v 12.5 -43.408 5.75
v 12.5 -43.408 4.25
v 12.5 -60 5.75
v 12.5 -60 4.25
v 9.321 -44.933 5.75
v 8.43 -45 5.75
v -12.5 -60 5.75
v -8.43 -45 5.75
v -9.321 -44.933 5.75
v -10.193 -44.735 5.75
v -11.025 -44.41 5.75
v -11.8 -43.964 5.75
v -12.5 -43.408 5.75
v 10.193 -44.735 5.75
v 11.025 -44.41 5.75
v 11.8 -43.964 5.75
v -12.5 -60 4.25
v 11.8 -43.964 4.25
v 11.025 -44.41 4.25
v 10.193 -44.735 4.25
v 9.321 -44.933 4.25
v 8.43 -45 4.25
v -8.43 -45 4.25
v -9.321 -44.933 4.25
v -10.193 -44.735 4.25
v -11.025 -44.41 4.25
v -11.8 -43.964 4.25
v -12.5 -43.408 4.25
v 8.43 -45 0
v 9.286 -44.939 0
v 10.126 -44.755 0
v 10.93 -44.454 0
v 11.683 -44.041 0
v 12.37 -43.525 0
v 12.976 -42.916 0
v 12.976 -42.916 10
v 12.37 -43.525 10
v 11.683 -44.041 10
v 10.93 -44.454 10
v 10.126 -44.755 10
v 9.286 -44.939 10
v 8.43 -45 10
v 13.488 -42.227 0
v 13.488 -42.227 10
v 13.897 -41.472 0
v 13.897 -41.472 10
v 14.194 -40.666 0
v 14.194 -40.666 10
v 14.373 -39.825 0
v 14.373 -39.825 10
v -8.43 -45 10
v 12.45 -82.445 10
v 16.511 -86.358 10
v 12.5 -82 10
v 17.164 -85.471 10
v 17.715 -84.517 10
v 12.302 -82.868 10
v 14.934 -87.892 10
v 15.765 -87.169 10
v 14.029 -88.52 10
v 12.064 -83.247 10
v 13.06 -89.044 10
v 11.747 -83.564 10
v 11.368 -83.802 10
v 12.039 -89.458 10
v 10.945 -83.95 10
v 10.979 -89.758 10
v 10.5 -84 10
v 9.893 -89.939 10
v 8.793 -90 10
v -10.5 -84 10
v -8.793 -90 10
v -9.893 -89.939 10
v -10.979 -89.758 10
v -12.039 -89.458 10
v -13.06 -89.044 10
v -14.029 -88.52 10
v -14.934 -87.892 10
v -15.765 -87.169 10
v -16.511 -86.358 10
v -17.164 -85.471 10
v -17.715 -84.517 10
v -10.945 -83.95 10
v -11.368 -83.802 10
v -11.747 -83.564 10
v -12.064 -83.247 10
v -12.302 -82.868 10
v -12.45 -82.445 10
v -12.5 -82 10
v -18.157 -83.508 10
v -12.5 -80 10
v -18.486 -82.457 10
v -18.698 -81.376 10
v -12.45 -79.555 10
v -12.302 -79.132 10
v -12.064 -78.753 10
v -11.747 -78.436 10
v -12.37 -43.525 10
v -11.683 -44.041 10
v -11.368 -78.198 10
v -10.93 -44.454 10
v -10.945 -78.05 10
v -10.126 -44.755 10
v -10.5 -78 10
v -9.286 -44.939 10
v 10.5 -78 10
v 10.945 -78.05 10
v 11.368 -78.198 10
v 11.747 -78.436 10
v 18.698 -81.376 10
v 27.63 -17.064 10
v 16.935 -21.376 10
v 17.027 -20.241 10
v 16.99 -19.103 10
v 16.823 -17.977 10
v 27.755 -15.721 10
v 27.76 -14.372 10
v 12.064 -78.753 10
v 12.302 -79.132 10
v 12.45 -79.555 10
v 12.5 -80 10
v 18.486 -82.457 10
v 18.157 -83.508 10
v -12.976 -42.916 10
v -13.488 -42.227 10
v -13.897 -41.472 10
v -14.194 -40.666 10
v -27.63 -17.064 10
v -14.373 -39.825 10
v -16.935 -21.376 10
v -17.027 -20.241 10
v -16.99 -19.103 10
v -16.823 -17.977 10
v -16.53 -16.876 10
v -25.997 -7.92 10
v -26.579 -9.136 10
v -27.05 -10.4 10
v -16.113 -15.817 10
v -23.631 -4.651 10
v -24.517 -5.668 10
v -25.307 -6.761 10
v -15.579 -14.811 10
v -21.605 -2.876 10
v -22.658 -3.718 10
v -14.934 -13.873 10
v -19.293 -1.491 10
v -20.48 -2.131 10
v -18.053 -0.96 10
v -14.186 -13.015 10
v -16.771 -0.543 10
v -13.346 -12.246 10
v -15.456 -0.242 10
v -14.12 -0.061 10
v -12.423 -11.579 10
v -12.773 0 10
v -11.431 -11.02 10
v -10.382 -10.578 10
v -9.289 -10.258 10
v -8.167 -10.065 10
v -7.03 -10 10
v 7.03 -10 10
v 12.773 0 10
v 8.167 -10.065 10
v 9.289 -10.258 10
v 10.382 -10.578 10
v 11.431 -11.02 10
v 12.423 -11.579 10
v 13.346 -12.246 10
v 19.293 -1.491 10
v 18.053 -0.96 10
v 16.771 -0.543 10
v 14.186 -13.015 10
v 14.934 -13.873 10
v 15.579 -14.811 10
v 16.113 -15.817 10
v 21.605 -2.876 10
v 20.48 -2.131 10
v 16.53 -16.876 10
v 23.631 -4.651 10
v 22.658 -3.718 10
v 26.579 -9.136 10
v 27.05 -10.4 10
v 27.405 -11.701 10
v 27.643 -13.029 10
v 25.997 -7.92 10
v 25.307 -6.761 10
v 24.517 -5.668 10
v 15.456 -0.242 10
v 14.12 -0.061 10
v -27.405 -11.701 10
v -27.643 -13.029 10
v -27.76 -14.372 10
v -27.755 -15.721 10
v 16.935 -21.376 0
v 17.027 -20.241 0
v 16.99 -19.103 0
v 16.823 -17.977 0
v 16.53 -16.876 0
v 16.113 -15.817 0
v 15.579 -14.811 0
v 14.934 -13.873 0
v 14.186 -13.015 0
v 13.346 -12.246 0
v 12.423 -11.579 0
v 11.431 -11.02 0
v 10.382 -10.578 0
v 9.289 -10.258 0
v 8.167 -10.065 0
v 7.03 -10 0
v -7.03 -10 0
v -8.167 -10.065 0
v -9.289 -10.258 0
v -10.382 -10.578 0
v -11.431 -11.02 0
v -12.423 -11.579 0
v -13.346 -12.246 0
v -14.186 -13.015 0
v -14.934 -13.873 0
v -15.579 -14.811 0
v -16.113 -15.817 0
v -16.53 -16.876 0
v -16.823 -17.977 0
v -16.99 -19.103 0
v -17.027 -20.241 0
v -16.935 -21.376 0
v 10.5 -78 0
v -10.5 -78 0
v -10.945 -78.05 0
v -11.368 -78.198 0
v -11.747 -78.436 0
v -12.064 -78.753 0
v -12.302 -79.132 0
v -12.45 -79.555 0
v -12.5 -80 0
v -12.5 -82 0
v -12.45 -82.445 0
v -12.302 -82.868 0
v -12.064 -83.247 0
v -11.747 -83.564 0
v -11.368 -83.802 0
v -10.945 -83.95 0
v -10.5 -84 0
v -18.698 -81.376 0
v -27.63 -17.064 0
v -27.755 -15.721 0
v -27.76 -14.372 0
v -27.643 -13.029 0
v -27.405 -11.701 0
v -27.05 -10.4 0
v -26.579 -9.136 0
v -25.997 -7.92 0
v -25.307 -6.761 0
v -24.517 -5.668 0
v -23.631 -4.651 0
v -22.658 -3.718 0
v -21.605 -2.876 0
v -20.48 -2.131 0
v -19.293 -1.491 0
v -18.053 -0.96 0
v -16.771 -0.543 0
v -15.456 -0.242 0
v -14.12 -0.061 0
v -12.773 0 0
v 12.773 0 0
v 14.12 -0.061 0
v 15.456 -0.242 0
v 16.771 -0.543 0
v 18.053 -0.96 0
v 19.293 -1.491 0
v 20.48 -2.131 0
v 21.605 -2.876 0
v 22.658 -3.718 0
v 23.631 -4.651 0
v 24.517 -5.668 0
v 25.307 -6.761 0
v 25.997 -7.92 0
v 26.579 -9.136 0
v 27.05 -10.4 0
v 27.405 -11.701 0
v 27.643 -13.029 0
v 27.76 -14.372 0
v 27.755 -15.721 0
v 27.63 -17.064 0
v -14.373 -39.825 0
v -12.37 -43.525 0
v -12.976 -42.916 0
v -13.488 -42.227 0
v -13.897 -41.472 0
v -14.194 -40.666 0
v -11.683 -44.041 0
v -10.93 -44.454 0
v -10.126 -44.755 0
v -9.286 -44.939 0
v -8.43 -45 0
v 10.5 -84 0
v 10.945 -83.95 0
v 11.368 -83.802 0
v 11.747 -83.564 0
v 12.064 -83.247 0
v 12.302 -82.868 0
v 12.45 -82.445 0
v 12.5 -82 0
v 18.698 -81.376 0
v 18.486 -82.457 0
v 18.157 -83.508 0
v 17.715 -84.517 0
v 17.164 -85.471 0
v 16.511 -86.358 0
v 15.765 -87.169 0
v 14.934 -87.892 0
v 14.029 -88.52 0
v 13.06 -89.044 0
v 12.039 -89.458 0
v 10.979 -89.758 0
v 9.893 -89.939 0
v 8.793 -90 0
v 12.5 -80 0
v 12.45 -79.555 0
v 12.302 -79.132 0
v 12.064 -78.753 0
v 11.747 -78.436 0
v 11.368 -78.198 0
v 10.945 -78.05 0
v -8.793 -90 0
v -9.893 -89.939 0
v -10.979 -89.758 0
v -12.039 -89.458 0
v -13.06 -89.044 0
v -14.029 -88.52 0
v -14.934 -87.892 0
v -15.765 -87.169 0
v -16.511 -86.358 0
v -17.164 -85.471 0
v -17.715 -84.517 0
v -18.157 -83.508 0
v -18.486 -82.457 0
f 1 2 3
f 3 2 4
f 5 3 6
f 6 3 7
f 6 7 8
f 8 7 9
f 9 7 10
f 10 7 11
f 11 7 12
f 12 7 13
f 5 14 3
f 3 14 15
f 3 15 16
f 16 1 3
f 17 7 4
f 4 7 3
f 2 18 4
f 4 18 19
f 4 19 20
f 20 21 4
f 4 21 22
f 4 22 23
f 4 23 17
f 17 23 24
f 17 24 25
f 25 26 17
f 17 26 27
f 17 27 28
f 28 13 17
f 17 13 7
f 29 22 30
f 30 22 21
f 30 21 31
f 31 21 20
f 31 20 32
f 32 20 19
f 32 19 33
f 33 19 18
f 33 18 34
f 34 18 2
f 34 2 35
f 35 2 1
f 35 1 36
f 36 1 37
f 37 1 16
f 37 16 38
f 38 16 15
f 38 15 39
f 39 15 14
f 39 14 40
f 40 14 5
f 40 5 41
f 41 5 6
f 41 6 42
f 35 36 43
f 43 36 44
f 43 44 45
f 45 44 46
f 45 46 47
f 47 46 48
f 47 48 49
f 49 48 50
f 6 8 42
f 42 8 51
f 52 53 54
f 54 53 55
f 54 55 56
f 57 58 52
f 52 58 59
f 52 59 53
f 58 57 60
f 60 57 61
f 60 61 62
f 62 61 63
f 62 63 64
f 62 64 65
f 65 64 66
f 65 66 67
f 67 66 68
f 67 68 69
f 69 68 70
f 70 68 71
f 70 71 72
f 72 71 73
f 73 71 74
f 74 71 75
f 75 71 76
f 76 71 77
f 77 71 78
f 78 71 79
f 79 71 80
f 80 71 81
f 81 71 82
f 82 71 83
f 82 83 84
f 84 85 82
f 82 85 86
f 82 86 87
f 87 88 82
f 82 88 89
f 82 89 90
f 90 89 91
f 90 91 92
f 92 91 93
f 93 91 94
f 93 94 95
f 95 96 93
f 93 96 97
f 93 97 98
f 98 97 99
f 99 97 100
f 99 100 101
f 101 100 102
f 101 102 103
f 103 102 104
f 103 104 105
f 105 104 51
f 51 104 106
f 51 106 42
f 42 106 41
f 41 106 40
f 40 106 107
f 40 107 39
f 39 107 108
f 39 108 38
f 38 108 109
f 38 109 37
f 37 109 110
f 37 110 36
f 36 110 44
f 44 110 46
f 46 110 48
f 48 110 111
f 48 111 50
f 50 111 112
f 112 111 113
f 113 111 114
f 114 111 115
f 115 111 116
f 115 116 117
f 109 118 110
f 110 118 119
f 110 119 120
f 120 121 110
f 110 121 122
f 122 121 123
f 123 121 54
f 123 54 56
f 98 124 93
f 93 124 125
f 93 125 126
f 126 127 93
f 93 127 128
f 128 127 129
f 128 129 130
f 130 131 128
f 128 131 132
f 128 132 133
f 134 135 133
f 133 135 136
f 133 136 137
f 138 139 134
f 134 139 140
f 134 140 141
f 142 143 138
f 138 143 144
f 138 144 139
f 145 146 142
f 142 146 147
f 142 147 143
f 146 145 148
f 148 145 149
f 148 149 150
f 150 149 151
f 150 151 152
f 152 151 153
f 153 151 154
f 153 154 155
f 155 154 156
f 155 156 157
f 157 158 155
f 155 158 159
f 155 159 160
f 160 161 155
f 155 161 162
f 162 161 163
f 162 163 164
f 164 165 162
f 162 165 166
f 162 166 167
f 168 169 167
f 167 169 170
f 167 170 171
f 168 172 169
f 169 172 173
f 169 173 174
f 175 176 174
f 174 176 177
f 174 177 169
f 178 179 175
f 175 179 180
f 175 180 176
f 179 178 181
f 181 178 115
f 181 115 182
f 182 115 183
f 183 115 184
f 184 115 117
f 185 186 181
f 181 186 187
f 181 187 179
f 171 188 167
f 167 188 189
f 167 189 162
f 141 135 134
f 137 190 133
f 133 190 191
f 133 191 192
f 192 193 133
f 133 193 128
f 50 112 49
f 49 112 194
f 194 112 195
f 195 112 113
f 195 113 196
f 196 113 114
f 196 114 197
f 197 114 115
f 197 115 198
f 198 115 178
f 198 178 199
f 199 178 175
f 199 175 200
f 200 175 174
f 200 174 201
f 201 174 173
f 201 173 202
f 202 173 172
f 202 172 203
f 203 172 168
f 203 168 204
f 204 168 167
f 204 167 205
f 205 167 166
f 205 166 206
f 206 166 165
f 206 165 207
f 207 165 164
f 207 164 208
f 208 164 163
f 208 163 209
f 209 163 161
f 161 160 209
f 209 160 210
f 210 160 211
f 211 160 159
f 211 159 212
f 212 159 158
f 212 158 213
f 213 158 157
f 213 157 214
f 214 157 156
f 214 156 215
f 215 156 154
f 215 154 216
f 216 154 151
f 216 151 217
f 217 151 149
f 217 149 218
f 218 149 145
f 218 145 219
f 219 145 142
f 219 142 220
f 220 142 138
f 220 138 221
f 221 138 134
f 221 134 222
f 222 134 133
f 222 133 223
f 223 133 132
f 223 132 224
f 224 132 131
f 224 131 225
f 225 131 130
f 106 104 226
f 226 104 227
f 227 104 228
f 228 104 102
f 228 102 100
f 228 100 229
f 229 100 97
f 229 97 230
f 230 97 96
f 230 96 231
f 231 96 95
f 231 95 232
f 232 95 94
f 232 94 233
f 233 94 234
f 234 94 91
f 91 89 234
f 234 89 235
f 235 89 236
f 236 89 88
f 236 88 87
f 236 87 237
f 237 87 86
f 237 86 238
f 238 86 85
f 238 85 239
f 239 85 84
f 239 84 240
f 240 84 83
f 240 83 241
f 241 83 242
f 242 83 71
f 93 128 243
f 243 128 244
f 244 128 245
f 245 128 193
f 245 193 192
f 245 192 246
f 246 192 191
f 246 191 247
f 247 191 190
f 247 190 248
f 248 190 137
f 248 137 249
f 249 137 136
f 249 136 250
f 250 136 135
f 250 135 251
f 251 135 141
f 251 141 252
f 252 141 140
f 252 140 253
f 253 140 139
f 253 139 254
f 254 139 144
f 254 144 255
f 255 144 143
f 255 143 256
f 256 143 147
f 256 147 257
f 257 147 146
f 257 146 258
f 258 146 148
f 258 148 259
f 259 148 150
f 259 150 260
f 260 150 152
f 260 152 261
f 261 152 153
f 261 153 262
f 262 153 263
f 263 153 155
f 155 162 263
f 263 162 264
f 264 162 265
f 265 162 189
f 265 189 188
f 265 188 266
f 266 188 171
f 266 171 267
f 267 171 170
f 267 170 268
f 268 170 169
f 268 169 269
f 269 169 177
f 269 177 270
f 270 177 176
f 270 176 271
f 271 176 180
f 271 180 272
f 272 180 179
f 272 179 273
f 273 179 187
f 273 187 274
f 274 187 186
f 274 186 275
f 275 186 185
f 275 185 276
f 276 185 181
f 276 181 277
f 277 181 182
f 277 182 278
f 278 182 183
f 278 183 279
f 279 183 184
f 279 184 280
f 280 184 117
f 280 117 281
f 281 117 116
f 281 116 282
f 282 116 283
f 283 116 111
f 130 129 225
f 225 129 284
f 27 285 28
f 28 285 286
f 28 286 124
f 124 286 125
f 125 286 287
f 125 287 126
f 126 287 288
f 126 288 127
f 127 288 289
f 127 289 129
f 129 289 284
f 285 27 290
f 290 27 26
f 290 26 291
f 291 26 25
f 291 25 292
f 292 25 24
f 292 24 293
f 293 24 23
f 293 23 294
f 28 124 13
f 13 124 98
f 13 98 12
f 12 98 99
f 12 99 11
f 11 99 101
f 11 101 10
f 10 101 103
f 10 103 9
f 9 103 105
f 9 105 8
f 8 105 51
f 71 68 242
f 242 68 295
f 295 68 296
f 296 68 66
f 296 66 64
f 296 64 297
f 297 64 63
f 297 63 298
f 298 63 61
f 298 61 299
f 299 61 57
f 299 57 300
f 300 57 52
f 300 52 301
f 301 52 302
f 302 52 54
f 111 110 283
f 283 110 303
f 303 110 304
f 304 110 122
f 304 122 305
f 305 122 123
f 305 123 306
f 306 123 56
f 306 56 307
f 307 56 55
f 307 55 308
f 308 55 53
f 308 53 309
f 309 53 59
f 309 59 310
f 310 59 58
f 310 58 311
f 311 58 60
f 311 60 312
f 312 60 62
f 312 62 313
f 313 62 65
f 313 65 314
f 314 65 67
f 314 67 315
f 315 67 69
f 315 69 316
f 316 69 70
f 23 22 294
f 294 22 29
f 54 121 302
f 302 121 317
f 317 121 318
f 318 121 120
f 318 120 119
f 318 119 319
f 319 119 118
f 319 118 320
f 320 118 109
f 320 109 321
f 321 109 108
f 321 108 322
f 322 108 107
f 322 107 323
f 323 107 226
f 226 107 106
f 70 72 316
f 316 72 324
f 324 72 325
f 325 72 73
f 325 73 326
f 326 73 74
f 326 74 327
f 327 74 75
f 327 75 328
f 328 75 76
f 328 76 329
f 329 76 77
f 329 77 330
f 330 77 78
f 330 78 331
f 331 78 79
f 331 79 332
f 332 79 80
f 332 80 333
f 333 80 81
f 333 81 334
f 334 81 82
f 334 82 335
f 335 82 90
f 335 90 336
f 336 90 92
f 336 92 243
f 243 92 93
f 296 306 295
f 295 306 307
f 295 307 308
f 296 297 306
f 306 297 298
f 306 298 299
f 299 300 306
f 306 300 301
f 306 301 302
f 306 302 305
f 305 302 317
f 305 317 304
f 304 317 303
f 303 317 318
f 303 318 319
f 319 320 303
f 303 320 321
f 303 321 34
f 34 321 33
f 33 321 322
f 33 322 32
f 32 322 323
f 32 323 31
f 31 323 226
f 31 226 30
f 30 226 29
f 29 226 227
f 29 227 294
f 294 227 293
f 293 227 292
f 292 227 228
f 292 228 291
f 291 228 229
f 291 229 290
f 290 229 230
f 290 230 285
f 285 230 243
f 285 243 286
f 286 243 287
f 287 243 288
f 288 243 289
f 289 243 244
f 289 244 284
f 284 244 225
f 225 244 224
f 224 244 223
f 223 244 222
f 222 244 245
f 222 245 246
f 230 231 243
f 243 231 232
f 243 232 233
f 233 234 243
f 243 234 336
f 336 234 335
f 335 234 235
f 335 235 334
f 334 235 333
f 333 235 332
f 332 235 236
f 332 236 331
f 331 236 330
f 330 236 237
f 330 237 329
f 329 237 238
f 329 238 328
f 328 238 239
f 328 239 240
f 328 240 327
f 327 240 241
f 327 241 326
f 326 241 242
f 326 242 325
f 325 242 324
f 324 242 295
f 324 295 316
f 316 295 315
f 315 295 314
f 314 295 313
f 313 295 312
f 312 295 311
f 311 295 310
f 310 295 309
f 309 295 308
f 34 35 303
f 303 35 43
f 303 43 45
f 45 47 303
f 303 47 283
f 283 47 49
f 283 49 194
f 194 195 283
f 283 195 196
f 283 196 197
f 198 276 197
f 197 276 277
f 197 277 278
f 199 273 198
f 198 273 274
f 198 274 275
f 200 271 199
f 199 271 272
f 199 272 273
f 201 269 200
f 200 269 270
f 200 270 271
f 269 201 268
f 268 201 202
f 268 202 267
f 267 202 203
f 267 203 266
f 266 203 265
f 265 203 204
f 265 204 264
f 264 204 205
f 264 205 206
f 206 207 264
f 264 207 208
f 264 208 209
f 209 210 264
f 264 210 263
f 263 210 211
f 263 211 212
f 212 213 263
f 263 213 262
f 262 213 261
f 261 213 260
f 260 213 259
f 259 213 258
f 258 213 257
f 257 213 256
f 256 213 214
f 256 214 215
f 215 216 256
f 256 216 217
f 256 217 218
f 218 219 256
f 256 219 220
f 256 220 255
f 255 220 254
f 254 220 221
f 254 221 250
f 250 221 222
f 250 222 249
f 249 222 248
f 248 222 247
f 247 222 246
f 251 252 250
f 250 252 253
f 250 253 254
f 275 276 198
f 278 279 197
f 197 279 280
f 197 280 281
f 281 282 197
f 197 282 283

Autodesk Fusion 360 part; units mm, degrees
sketch "Sketch1" plane through (0, 0, 0) normal (0, 0, 1) x (1, 0, 0)
  line L0 (18.6978, -81.3757) -> (27.6301, -17.0635)
  line L1 (12.7727, 0) -> (-12.7727, 0)
  line L2 (-27.6301, -17.0635) -> (-18.6978, -81.3757)
  line L3 (-8.7929, -90) -> (8.7929, -90)
  arc A0 (-12.7727, 0) -> (-27.6301, -17.0635) centre (-12.7727, -15) ccw
  arc A1 (27.6301, -17.0635) -> (12.7727, 0) centre (12.7727, -15) ccw
  arc A2 (-18.6978, -81.3757) -> (-8.7929, -90) centre (-8.7929, -80) ccw
  arc A3 (8.7929, -90) -> (18.6978, -81.3757) centre (8.7929, -80) ccw
  line L4 (10.5, -78) -> (-10.5, -78)
  line L5 (-12.5, -80) -> (-12.5, -82)
  line L6 (-10.5, -84) -> (10.5, -84)
  line L7 (12.5, -82) -> (12.5, -80)
  arc A4 (-10.5, -78) -> (-12.5, -80) centre (-10.5, -80) ccw
  arc A5 (12.5, -80) -> (10.5, -78) centre (10.5, -80) ccw
  arc A6 (-12.5, -82) -> (-10.5, -84) centre (-10.5, -82) ccw
  arc A7 (10.5, -84) -> (12.5, -82) centre (10.5, -82) ccw
  line L8 (14.3727, -39.8254) -> (16.9352, -21.3757)
  line L9 (7.0302, -10) -> (-7.0302, -10)
  line L10 (-16.9352, -21.3757) -> (-14.3727, -39.8254)
  line L11 (-8.4297, -45) -> (8.4297, -45)
  arc A8 (-7.0302, -10) -> (-16.9352, -21.3757) centre (-7.0302, -20) ccw
  arc A9 (16.9352, -21.3757) -> (7.0302, -10) centre (7.0302, -20) ccw
  arc A10 (8.4297, -45) -> (14.3727, -39.8254) centre (8.4297, -39) ccw
  arc A11 (-14.3727, -39.8254) -> (-8.4297, -45) centre (-8.4297, -39) ccw
  point P0 (17.5, -90)
  point P1 (30, 0)
  point P2 (-30, 0)
  point P3 (-17.5, -90)
  point P4 (12.5, -78)
  point P5 (-12.5, -78)
  point P6 (12.5, -84)
  dimension "d3" = 90
  dimension "d4" = 60
  dimension "d5" = 35
  dimension "d9" = 12.5
  dimension "d10" = 15
  dimension "d11" = 15
  dimension "d12" = 10
  dimension "d13" = 10
  dimension "d14" = 25
  dimension "d15" = 6
  dimension "d16" = 6
  dimension "d17" = 2
  dimension "d18" = 2
  dimension "d19" = 2
  dimension "d20" = 2
  dimension "d21" = 12.5
  dimension "d22" = 10
  dimension "d23" = 10
  dimension "d24" = 6
  dimension "d25" = 6
  dimension "d26" = 10
  dimension "d27" = 10
  dimension "d28" = 10
  dimension "d29" = 35
extrude "Extrude1" add sketch "Sketch1" along normal blind 15
extrude "Extrude2" cut 1 faces at (2.8099, -67, 15) along direction (0, 0, -1) blind 3
extrude "Extrude3" cut 1 faces at (2.8099, -67, 12) along direction (0, 0, -1) blind 2
sketch "Sketch2" plane through (0, -45, 0) normal (0, 1, 0) x (-1, 0, 0)
  line L0 (8.4297, 10) -> (-8.4297, 10)
  line L1 (-8.4297, 10) -> (-8.4297, 0)
  line L2 (-8.4297, 0) -> (8.4297, 0)
  line L3 (8.4297, 0) -> (8.4297, 10)
  line L4 (12.5, 5.75) -> (-12.5, 5.75)
  line L5 (-12.5, 5.75) -> (-12.5, 4.25)
  line L6 (-12.5, 4.25) -> (12.5, 4.25)
  line L7 (12.5, 4.25) -> (12.5, 5.75)
  point P0 (-12.7727, 10)
  dimension "d36" = 25
  dimension "d37" = 1.5
  dimension "d38" = 12.5
  dimension "d39" = 4.25
extrude "Extrude4" cut sketch "Sketch2" along normal blind 3 and the other way blind 15 contours L3 L4 L6 L7 | L1 L3 L4 L6 | L1 L4 L5 L6
sketch "Sketch3" plane through (0, 0, 10) normal (0, 0, 1) x (-1, 0, 0)
  arc A0 (-10.5, 84) -> (-12.5, 82) centre (-10.5, 82) ccw
  line L0 (-10.5, 84) -> (10.5, 84)
  arc A1 (12.5, 82) -> (10.5, 84) centre (10.5, 82) ccw
  line L1 (12.5, 82) -> (12.5, 80)
  arc A2 (10.5, 78) -> (12.5, 80) centre (10.5, 80) ccw
  line L2 (10.5, 78) -> (-10.5, 78)
  arc A3 (-12.5, 80) -> (-10.5, 78) centre (-10.5, 80) ccw
  line L3 (-12.5, 80) -> (-12.5, 82)
  arc A4 (14.3727, 39.8254) -> (8.4297, 45) centre (8.4297, 39) ccw
  line L4 (14.3727, 39.8254) -> (16.9352, 21.3757)
  arc A5 (7.0302, 10) -> (16.9352, 21.3757) centre (7.0302, 20) ccw
  line L5 (7.0302, 10) -> (-7.0302, 10)
  arc A6 (-16.9352, 21.3757) -> (-7.0302, 10) centre (-7.0302, 20) ccw
  line L6 (-16.9352, 21.3757) -> (-14.3727, 39.8254)
  arc A7 (-8.4297, 45) -> (-14.3727, 39.8254) centre (-8.4297, 39) ccw
  line L7 (-8.4297, 45) -> (8.4297, 45)
  arc A8 (-8.7929, 90) -> (-18.6978, 81.3757) centre (-8.7929, 80) ccw
  line L8 (-18.6978, 81.3757) -> (-27.6301, 17.0635)
  arc A9 (-27.6301, 17.0635) -> (-12.7727, 0) centre (-12.7727, 15) ccw
  line L9 (-12.7727, 0) -> (12.7727, 0)
  arc A10 (12.7727, 0) -> (27.6301, 17.0635) centre (12.7727, 15) ccw
  line L10 (27.6301, 17.0635) -> (18.6978, 81.3757)
  arc A11 (18.6978, 81.3757) -> (8.7929, 90) centre (8.7929, 80) ccw
  line L11 (8.7929, 90) -> (-8.7929, 90)
equation "D_krona = 25 mm"
equation "þykkt_krona = 1.5 mm"
equation "d3 = haed"
equation "d4 = max_b"
equation "d5 = min_b"
equation "max_b = 60 mm"
equation "min_b = 35 mm"
equation "haed = 90 mm"
equation "d9 = ( max_b - min_b ) / 2"
equation "d14 = D_krona"
equation "d21 = D_krona / 2"
equation "d36 = D_krona"
equation "d37 = þykkt_krona"
equation "d38 = D_krona / 2"
equation "d39 = ( 10 mm - þykkt_krona ) / 2"
equation "d42 = D_krona - 10 mm"
